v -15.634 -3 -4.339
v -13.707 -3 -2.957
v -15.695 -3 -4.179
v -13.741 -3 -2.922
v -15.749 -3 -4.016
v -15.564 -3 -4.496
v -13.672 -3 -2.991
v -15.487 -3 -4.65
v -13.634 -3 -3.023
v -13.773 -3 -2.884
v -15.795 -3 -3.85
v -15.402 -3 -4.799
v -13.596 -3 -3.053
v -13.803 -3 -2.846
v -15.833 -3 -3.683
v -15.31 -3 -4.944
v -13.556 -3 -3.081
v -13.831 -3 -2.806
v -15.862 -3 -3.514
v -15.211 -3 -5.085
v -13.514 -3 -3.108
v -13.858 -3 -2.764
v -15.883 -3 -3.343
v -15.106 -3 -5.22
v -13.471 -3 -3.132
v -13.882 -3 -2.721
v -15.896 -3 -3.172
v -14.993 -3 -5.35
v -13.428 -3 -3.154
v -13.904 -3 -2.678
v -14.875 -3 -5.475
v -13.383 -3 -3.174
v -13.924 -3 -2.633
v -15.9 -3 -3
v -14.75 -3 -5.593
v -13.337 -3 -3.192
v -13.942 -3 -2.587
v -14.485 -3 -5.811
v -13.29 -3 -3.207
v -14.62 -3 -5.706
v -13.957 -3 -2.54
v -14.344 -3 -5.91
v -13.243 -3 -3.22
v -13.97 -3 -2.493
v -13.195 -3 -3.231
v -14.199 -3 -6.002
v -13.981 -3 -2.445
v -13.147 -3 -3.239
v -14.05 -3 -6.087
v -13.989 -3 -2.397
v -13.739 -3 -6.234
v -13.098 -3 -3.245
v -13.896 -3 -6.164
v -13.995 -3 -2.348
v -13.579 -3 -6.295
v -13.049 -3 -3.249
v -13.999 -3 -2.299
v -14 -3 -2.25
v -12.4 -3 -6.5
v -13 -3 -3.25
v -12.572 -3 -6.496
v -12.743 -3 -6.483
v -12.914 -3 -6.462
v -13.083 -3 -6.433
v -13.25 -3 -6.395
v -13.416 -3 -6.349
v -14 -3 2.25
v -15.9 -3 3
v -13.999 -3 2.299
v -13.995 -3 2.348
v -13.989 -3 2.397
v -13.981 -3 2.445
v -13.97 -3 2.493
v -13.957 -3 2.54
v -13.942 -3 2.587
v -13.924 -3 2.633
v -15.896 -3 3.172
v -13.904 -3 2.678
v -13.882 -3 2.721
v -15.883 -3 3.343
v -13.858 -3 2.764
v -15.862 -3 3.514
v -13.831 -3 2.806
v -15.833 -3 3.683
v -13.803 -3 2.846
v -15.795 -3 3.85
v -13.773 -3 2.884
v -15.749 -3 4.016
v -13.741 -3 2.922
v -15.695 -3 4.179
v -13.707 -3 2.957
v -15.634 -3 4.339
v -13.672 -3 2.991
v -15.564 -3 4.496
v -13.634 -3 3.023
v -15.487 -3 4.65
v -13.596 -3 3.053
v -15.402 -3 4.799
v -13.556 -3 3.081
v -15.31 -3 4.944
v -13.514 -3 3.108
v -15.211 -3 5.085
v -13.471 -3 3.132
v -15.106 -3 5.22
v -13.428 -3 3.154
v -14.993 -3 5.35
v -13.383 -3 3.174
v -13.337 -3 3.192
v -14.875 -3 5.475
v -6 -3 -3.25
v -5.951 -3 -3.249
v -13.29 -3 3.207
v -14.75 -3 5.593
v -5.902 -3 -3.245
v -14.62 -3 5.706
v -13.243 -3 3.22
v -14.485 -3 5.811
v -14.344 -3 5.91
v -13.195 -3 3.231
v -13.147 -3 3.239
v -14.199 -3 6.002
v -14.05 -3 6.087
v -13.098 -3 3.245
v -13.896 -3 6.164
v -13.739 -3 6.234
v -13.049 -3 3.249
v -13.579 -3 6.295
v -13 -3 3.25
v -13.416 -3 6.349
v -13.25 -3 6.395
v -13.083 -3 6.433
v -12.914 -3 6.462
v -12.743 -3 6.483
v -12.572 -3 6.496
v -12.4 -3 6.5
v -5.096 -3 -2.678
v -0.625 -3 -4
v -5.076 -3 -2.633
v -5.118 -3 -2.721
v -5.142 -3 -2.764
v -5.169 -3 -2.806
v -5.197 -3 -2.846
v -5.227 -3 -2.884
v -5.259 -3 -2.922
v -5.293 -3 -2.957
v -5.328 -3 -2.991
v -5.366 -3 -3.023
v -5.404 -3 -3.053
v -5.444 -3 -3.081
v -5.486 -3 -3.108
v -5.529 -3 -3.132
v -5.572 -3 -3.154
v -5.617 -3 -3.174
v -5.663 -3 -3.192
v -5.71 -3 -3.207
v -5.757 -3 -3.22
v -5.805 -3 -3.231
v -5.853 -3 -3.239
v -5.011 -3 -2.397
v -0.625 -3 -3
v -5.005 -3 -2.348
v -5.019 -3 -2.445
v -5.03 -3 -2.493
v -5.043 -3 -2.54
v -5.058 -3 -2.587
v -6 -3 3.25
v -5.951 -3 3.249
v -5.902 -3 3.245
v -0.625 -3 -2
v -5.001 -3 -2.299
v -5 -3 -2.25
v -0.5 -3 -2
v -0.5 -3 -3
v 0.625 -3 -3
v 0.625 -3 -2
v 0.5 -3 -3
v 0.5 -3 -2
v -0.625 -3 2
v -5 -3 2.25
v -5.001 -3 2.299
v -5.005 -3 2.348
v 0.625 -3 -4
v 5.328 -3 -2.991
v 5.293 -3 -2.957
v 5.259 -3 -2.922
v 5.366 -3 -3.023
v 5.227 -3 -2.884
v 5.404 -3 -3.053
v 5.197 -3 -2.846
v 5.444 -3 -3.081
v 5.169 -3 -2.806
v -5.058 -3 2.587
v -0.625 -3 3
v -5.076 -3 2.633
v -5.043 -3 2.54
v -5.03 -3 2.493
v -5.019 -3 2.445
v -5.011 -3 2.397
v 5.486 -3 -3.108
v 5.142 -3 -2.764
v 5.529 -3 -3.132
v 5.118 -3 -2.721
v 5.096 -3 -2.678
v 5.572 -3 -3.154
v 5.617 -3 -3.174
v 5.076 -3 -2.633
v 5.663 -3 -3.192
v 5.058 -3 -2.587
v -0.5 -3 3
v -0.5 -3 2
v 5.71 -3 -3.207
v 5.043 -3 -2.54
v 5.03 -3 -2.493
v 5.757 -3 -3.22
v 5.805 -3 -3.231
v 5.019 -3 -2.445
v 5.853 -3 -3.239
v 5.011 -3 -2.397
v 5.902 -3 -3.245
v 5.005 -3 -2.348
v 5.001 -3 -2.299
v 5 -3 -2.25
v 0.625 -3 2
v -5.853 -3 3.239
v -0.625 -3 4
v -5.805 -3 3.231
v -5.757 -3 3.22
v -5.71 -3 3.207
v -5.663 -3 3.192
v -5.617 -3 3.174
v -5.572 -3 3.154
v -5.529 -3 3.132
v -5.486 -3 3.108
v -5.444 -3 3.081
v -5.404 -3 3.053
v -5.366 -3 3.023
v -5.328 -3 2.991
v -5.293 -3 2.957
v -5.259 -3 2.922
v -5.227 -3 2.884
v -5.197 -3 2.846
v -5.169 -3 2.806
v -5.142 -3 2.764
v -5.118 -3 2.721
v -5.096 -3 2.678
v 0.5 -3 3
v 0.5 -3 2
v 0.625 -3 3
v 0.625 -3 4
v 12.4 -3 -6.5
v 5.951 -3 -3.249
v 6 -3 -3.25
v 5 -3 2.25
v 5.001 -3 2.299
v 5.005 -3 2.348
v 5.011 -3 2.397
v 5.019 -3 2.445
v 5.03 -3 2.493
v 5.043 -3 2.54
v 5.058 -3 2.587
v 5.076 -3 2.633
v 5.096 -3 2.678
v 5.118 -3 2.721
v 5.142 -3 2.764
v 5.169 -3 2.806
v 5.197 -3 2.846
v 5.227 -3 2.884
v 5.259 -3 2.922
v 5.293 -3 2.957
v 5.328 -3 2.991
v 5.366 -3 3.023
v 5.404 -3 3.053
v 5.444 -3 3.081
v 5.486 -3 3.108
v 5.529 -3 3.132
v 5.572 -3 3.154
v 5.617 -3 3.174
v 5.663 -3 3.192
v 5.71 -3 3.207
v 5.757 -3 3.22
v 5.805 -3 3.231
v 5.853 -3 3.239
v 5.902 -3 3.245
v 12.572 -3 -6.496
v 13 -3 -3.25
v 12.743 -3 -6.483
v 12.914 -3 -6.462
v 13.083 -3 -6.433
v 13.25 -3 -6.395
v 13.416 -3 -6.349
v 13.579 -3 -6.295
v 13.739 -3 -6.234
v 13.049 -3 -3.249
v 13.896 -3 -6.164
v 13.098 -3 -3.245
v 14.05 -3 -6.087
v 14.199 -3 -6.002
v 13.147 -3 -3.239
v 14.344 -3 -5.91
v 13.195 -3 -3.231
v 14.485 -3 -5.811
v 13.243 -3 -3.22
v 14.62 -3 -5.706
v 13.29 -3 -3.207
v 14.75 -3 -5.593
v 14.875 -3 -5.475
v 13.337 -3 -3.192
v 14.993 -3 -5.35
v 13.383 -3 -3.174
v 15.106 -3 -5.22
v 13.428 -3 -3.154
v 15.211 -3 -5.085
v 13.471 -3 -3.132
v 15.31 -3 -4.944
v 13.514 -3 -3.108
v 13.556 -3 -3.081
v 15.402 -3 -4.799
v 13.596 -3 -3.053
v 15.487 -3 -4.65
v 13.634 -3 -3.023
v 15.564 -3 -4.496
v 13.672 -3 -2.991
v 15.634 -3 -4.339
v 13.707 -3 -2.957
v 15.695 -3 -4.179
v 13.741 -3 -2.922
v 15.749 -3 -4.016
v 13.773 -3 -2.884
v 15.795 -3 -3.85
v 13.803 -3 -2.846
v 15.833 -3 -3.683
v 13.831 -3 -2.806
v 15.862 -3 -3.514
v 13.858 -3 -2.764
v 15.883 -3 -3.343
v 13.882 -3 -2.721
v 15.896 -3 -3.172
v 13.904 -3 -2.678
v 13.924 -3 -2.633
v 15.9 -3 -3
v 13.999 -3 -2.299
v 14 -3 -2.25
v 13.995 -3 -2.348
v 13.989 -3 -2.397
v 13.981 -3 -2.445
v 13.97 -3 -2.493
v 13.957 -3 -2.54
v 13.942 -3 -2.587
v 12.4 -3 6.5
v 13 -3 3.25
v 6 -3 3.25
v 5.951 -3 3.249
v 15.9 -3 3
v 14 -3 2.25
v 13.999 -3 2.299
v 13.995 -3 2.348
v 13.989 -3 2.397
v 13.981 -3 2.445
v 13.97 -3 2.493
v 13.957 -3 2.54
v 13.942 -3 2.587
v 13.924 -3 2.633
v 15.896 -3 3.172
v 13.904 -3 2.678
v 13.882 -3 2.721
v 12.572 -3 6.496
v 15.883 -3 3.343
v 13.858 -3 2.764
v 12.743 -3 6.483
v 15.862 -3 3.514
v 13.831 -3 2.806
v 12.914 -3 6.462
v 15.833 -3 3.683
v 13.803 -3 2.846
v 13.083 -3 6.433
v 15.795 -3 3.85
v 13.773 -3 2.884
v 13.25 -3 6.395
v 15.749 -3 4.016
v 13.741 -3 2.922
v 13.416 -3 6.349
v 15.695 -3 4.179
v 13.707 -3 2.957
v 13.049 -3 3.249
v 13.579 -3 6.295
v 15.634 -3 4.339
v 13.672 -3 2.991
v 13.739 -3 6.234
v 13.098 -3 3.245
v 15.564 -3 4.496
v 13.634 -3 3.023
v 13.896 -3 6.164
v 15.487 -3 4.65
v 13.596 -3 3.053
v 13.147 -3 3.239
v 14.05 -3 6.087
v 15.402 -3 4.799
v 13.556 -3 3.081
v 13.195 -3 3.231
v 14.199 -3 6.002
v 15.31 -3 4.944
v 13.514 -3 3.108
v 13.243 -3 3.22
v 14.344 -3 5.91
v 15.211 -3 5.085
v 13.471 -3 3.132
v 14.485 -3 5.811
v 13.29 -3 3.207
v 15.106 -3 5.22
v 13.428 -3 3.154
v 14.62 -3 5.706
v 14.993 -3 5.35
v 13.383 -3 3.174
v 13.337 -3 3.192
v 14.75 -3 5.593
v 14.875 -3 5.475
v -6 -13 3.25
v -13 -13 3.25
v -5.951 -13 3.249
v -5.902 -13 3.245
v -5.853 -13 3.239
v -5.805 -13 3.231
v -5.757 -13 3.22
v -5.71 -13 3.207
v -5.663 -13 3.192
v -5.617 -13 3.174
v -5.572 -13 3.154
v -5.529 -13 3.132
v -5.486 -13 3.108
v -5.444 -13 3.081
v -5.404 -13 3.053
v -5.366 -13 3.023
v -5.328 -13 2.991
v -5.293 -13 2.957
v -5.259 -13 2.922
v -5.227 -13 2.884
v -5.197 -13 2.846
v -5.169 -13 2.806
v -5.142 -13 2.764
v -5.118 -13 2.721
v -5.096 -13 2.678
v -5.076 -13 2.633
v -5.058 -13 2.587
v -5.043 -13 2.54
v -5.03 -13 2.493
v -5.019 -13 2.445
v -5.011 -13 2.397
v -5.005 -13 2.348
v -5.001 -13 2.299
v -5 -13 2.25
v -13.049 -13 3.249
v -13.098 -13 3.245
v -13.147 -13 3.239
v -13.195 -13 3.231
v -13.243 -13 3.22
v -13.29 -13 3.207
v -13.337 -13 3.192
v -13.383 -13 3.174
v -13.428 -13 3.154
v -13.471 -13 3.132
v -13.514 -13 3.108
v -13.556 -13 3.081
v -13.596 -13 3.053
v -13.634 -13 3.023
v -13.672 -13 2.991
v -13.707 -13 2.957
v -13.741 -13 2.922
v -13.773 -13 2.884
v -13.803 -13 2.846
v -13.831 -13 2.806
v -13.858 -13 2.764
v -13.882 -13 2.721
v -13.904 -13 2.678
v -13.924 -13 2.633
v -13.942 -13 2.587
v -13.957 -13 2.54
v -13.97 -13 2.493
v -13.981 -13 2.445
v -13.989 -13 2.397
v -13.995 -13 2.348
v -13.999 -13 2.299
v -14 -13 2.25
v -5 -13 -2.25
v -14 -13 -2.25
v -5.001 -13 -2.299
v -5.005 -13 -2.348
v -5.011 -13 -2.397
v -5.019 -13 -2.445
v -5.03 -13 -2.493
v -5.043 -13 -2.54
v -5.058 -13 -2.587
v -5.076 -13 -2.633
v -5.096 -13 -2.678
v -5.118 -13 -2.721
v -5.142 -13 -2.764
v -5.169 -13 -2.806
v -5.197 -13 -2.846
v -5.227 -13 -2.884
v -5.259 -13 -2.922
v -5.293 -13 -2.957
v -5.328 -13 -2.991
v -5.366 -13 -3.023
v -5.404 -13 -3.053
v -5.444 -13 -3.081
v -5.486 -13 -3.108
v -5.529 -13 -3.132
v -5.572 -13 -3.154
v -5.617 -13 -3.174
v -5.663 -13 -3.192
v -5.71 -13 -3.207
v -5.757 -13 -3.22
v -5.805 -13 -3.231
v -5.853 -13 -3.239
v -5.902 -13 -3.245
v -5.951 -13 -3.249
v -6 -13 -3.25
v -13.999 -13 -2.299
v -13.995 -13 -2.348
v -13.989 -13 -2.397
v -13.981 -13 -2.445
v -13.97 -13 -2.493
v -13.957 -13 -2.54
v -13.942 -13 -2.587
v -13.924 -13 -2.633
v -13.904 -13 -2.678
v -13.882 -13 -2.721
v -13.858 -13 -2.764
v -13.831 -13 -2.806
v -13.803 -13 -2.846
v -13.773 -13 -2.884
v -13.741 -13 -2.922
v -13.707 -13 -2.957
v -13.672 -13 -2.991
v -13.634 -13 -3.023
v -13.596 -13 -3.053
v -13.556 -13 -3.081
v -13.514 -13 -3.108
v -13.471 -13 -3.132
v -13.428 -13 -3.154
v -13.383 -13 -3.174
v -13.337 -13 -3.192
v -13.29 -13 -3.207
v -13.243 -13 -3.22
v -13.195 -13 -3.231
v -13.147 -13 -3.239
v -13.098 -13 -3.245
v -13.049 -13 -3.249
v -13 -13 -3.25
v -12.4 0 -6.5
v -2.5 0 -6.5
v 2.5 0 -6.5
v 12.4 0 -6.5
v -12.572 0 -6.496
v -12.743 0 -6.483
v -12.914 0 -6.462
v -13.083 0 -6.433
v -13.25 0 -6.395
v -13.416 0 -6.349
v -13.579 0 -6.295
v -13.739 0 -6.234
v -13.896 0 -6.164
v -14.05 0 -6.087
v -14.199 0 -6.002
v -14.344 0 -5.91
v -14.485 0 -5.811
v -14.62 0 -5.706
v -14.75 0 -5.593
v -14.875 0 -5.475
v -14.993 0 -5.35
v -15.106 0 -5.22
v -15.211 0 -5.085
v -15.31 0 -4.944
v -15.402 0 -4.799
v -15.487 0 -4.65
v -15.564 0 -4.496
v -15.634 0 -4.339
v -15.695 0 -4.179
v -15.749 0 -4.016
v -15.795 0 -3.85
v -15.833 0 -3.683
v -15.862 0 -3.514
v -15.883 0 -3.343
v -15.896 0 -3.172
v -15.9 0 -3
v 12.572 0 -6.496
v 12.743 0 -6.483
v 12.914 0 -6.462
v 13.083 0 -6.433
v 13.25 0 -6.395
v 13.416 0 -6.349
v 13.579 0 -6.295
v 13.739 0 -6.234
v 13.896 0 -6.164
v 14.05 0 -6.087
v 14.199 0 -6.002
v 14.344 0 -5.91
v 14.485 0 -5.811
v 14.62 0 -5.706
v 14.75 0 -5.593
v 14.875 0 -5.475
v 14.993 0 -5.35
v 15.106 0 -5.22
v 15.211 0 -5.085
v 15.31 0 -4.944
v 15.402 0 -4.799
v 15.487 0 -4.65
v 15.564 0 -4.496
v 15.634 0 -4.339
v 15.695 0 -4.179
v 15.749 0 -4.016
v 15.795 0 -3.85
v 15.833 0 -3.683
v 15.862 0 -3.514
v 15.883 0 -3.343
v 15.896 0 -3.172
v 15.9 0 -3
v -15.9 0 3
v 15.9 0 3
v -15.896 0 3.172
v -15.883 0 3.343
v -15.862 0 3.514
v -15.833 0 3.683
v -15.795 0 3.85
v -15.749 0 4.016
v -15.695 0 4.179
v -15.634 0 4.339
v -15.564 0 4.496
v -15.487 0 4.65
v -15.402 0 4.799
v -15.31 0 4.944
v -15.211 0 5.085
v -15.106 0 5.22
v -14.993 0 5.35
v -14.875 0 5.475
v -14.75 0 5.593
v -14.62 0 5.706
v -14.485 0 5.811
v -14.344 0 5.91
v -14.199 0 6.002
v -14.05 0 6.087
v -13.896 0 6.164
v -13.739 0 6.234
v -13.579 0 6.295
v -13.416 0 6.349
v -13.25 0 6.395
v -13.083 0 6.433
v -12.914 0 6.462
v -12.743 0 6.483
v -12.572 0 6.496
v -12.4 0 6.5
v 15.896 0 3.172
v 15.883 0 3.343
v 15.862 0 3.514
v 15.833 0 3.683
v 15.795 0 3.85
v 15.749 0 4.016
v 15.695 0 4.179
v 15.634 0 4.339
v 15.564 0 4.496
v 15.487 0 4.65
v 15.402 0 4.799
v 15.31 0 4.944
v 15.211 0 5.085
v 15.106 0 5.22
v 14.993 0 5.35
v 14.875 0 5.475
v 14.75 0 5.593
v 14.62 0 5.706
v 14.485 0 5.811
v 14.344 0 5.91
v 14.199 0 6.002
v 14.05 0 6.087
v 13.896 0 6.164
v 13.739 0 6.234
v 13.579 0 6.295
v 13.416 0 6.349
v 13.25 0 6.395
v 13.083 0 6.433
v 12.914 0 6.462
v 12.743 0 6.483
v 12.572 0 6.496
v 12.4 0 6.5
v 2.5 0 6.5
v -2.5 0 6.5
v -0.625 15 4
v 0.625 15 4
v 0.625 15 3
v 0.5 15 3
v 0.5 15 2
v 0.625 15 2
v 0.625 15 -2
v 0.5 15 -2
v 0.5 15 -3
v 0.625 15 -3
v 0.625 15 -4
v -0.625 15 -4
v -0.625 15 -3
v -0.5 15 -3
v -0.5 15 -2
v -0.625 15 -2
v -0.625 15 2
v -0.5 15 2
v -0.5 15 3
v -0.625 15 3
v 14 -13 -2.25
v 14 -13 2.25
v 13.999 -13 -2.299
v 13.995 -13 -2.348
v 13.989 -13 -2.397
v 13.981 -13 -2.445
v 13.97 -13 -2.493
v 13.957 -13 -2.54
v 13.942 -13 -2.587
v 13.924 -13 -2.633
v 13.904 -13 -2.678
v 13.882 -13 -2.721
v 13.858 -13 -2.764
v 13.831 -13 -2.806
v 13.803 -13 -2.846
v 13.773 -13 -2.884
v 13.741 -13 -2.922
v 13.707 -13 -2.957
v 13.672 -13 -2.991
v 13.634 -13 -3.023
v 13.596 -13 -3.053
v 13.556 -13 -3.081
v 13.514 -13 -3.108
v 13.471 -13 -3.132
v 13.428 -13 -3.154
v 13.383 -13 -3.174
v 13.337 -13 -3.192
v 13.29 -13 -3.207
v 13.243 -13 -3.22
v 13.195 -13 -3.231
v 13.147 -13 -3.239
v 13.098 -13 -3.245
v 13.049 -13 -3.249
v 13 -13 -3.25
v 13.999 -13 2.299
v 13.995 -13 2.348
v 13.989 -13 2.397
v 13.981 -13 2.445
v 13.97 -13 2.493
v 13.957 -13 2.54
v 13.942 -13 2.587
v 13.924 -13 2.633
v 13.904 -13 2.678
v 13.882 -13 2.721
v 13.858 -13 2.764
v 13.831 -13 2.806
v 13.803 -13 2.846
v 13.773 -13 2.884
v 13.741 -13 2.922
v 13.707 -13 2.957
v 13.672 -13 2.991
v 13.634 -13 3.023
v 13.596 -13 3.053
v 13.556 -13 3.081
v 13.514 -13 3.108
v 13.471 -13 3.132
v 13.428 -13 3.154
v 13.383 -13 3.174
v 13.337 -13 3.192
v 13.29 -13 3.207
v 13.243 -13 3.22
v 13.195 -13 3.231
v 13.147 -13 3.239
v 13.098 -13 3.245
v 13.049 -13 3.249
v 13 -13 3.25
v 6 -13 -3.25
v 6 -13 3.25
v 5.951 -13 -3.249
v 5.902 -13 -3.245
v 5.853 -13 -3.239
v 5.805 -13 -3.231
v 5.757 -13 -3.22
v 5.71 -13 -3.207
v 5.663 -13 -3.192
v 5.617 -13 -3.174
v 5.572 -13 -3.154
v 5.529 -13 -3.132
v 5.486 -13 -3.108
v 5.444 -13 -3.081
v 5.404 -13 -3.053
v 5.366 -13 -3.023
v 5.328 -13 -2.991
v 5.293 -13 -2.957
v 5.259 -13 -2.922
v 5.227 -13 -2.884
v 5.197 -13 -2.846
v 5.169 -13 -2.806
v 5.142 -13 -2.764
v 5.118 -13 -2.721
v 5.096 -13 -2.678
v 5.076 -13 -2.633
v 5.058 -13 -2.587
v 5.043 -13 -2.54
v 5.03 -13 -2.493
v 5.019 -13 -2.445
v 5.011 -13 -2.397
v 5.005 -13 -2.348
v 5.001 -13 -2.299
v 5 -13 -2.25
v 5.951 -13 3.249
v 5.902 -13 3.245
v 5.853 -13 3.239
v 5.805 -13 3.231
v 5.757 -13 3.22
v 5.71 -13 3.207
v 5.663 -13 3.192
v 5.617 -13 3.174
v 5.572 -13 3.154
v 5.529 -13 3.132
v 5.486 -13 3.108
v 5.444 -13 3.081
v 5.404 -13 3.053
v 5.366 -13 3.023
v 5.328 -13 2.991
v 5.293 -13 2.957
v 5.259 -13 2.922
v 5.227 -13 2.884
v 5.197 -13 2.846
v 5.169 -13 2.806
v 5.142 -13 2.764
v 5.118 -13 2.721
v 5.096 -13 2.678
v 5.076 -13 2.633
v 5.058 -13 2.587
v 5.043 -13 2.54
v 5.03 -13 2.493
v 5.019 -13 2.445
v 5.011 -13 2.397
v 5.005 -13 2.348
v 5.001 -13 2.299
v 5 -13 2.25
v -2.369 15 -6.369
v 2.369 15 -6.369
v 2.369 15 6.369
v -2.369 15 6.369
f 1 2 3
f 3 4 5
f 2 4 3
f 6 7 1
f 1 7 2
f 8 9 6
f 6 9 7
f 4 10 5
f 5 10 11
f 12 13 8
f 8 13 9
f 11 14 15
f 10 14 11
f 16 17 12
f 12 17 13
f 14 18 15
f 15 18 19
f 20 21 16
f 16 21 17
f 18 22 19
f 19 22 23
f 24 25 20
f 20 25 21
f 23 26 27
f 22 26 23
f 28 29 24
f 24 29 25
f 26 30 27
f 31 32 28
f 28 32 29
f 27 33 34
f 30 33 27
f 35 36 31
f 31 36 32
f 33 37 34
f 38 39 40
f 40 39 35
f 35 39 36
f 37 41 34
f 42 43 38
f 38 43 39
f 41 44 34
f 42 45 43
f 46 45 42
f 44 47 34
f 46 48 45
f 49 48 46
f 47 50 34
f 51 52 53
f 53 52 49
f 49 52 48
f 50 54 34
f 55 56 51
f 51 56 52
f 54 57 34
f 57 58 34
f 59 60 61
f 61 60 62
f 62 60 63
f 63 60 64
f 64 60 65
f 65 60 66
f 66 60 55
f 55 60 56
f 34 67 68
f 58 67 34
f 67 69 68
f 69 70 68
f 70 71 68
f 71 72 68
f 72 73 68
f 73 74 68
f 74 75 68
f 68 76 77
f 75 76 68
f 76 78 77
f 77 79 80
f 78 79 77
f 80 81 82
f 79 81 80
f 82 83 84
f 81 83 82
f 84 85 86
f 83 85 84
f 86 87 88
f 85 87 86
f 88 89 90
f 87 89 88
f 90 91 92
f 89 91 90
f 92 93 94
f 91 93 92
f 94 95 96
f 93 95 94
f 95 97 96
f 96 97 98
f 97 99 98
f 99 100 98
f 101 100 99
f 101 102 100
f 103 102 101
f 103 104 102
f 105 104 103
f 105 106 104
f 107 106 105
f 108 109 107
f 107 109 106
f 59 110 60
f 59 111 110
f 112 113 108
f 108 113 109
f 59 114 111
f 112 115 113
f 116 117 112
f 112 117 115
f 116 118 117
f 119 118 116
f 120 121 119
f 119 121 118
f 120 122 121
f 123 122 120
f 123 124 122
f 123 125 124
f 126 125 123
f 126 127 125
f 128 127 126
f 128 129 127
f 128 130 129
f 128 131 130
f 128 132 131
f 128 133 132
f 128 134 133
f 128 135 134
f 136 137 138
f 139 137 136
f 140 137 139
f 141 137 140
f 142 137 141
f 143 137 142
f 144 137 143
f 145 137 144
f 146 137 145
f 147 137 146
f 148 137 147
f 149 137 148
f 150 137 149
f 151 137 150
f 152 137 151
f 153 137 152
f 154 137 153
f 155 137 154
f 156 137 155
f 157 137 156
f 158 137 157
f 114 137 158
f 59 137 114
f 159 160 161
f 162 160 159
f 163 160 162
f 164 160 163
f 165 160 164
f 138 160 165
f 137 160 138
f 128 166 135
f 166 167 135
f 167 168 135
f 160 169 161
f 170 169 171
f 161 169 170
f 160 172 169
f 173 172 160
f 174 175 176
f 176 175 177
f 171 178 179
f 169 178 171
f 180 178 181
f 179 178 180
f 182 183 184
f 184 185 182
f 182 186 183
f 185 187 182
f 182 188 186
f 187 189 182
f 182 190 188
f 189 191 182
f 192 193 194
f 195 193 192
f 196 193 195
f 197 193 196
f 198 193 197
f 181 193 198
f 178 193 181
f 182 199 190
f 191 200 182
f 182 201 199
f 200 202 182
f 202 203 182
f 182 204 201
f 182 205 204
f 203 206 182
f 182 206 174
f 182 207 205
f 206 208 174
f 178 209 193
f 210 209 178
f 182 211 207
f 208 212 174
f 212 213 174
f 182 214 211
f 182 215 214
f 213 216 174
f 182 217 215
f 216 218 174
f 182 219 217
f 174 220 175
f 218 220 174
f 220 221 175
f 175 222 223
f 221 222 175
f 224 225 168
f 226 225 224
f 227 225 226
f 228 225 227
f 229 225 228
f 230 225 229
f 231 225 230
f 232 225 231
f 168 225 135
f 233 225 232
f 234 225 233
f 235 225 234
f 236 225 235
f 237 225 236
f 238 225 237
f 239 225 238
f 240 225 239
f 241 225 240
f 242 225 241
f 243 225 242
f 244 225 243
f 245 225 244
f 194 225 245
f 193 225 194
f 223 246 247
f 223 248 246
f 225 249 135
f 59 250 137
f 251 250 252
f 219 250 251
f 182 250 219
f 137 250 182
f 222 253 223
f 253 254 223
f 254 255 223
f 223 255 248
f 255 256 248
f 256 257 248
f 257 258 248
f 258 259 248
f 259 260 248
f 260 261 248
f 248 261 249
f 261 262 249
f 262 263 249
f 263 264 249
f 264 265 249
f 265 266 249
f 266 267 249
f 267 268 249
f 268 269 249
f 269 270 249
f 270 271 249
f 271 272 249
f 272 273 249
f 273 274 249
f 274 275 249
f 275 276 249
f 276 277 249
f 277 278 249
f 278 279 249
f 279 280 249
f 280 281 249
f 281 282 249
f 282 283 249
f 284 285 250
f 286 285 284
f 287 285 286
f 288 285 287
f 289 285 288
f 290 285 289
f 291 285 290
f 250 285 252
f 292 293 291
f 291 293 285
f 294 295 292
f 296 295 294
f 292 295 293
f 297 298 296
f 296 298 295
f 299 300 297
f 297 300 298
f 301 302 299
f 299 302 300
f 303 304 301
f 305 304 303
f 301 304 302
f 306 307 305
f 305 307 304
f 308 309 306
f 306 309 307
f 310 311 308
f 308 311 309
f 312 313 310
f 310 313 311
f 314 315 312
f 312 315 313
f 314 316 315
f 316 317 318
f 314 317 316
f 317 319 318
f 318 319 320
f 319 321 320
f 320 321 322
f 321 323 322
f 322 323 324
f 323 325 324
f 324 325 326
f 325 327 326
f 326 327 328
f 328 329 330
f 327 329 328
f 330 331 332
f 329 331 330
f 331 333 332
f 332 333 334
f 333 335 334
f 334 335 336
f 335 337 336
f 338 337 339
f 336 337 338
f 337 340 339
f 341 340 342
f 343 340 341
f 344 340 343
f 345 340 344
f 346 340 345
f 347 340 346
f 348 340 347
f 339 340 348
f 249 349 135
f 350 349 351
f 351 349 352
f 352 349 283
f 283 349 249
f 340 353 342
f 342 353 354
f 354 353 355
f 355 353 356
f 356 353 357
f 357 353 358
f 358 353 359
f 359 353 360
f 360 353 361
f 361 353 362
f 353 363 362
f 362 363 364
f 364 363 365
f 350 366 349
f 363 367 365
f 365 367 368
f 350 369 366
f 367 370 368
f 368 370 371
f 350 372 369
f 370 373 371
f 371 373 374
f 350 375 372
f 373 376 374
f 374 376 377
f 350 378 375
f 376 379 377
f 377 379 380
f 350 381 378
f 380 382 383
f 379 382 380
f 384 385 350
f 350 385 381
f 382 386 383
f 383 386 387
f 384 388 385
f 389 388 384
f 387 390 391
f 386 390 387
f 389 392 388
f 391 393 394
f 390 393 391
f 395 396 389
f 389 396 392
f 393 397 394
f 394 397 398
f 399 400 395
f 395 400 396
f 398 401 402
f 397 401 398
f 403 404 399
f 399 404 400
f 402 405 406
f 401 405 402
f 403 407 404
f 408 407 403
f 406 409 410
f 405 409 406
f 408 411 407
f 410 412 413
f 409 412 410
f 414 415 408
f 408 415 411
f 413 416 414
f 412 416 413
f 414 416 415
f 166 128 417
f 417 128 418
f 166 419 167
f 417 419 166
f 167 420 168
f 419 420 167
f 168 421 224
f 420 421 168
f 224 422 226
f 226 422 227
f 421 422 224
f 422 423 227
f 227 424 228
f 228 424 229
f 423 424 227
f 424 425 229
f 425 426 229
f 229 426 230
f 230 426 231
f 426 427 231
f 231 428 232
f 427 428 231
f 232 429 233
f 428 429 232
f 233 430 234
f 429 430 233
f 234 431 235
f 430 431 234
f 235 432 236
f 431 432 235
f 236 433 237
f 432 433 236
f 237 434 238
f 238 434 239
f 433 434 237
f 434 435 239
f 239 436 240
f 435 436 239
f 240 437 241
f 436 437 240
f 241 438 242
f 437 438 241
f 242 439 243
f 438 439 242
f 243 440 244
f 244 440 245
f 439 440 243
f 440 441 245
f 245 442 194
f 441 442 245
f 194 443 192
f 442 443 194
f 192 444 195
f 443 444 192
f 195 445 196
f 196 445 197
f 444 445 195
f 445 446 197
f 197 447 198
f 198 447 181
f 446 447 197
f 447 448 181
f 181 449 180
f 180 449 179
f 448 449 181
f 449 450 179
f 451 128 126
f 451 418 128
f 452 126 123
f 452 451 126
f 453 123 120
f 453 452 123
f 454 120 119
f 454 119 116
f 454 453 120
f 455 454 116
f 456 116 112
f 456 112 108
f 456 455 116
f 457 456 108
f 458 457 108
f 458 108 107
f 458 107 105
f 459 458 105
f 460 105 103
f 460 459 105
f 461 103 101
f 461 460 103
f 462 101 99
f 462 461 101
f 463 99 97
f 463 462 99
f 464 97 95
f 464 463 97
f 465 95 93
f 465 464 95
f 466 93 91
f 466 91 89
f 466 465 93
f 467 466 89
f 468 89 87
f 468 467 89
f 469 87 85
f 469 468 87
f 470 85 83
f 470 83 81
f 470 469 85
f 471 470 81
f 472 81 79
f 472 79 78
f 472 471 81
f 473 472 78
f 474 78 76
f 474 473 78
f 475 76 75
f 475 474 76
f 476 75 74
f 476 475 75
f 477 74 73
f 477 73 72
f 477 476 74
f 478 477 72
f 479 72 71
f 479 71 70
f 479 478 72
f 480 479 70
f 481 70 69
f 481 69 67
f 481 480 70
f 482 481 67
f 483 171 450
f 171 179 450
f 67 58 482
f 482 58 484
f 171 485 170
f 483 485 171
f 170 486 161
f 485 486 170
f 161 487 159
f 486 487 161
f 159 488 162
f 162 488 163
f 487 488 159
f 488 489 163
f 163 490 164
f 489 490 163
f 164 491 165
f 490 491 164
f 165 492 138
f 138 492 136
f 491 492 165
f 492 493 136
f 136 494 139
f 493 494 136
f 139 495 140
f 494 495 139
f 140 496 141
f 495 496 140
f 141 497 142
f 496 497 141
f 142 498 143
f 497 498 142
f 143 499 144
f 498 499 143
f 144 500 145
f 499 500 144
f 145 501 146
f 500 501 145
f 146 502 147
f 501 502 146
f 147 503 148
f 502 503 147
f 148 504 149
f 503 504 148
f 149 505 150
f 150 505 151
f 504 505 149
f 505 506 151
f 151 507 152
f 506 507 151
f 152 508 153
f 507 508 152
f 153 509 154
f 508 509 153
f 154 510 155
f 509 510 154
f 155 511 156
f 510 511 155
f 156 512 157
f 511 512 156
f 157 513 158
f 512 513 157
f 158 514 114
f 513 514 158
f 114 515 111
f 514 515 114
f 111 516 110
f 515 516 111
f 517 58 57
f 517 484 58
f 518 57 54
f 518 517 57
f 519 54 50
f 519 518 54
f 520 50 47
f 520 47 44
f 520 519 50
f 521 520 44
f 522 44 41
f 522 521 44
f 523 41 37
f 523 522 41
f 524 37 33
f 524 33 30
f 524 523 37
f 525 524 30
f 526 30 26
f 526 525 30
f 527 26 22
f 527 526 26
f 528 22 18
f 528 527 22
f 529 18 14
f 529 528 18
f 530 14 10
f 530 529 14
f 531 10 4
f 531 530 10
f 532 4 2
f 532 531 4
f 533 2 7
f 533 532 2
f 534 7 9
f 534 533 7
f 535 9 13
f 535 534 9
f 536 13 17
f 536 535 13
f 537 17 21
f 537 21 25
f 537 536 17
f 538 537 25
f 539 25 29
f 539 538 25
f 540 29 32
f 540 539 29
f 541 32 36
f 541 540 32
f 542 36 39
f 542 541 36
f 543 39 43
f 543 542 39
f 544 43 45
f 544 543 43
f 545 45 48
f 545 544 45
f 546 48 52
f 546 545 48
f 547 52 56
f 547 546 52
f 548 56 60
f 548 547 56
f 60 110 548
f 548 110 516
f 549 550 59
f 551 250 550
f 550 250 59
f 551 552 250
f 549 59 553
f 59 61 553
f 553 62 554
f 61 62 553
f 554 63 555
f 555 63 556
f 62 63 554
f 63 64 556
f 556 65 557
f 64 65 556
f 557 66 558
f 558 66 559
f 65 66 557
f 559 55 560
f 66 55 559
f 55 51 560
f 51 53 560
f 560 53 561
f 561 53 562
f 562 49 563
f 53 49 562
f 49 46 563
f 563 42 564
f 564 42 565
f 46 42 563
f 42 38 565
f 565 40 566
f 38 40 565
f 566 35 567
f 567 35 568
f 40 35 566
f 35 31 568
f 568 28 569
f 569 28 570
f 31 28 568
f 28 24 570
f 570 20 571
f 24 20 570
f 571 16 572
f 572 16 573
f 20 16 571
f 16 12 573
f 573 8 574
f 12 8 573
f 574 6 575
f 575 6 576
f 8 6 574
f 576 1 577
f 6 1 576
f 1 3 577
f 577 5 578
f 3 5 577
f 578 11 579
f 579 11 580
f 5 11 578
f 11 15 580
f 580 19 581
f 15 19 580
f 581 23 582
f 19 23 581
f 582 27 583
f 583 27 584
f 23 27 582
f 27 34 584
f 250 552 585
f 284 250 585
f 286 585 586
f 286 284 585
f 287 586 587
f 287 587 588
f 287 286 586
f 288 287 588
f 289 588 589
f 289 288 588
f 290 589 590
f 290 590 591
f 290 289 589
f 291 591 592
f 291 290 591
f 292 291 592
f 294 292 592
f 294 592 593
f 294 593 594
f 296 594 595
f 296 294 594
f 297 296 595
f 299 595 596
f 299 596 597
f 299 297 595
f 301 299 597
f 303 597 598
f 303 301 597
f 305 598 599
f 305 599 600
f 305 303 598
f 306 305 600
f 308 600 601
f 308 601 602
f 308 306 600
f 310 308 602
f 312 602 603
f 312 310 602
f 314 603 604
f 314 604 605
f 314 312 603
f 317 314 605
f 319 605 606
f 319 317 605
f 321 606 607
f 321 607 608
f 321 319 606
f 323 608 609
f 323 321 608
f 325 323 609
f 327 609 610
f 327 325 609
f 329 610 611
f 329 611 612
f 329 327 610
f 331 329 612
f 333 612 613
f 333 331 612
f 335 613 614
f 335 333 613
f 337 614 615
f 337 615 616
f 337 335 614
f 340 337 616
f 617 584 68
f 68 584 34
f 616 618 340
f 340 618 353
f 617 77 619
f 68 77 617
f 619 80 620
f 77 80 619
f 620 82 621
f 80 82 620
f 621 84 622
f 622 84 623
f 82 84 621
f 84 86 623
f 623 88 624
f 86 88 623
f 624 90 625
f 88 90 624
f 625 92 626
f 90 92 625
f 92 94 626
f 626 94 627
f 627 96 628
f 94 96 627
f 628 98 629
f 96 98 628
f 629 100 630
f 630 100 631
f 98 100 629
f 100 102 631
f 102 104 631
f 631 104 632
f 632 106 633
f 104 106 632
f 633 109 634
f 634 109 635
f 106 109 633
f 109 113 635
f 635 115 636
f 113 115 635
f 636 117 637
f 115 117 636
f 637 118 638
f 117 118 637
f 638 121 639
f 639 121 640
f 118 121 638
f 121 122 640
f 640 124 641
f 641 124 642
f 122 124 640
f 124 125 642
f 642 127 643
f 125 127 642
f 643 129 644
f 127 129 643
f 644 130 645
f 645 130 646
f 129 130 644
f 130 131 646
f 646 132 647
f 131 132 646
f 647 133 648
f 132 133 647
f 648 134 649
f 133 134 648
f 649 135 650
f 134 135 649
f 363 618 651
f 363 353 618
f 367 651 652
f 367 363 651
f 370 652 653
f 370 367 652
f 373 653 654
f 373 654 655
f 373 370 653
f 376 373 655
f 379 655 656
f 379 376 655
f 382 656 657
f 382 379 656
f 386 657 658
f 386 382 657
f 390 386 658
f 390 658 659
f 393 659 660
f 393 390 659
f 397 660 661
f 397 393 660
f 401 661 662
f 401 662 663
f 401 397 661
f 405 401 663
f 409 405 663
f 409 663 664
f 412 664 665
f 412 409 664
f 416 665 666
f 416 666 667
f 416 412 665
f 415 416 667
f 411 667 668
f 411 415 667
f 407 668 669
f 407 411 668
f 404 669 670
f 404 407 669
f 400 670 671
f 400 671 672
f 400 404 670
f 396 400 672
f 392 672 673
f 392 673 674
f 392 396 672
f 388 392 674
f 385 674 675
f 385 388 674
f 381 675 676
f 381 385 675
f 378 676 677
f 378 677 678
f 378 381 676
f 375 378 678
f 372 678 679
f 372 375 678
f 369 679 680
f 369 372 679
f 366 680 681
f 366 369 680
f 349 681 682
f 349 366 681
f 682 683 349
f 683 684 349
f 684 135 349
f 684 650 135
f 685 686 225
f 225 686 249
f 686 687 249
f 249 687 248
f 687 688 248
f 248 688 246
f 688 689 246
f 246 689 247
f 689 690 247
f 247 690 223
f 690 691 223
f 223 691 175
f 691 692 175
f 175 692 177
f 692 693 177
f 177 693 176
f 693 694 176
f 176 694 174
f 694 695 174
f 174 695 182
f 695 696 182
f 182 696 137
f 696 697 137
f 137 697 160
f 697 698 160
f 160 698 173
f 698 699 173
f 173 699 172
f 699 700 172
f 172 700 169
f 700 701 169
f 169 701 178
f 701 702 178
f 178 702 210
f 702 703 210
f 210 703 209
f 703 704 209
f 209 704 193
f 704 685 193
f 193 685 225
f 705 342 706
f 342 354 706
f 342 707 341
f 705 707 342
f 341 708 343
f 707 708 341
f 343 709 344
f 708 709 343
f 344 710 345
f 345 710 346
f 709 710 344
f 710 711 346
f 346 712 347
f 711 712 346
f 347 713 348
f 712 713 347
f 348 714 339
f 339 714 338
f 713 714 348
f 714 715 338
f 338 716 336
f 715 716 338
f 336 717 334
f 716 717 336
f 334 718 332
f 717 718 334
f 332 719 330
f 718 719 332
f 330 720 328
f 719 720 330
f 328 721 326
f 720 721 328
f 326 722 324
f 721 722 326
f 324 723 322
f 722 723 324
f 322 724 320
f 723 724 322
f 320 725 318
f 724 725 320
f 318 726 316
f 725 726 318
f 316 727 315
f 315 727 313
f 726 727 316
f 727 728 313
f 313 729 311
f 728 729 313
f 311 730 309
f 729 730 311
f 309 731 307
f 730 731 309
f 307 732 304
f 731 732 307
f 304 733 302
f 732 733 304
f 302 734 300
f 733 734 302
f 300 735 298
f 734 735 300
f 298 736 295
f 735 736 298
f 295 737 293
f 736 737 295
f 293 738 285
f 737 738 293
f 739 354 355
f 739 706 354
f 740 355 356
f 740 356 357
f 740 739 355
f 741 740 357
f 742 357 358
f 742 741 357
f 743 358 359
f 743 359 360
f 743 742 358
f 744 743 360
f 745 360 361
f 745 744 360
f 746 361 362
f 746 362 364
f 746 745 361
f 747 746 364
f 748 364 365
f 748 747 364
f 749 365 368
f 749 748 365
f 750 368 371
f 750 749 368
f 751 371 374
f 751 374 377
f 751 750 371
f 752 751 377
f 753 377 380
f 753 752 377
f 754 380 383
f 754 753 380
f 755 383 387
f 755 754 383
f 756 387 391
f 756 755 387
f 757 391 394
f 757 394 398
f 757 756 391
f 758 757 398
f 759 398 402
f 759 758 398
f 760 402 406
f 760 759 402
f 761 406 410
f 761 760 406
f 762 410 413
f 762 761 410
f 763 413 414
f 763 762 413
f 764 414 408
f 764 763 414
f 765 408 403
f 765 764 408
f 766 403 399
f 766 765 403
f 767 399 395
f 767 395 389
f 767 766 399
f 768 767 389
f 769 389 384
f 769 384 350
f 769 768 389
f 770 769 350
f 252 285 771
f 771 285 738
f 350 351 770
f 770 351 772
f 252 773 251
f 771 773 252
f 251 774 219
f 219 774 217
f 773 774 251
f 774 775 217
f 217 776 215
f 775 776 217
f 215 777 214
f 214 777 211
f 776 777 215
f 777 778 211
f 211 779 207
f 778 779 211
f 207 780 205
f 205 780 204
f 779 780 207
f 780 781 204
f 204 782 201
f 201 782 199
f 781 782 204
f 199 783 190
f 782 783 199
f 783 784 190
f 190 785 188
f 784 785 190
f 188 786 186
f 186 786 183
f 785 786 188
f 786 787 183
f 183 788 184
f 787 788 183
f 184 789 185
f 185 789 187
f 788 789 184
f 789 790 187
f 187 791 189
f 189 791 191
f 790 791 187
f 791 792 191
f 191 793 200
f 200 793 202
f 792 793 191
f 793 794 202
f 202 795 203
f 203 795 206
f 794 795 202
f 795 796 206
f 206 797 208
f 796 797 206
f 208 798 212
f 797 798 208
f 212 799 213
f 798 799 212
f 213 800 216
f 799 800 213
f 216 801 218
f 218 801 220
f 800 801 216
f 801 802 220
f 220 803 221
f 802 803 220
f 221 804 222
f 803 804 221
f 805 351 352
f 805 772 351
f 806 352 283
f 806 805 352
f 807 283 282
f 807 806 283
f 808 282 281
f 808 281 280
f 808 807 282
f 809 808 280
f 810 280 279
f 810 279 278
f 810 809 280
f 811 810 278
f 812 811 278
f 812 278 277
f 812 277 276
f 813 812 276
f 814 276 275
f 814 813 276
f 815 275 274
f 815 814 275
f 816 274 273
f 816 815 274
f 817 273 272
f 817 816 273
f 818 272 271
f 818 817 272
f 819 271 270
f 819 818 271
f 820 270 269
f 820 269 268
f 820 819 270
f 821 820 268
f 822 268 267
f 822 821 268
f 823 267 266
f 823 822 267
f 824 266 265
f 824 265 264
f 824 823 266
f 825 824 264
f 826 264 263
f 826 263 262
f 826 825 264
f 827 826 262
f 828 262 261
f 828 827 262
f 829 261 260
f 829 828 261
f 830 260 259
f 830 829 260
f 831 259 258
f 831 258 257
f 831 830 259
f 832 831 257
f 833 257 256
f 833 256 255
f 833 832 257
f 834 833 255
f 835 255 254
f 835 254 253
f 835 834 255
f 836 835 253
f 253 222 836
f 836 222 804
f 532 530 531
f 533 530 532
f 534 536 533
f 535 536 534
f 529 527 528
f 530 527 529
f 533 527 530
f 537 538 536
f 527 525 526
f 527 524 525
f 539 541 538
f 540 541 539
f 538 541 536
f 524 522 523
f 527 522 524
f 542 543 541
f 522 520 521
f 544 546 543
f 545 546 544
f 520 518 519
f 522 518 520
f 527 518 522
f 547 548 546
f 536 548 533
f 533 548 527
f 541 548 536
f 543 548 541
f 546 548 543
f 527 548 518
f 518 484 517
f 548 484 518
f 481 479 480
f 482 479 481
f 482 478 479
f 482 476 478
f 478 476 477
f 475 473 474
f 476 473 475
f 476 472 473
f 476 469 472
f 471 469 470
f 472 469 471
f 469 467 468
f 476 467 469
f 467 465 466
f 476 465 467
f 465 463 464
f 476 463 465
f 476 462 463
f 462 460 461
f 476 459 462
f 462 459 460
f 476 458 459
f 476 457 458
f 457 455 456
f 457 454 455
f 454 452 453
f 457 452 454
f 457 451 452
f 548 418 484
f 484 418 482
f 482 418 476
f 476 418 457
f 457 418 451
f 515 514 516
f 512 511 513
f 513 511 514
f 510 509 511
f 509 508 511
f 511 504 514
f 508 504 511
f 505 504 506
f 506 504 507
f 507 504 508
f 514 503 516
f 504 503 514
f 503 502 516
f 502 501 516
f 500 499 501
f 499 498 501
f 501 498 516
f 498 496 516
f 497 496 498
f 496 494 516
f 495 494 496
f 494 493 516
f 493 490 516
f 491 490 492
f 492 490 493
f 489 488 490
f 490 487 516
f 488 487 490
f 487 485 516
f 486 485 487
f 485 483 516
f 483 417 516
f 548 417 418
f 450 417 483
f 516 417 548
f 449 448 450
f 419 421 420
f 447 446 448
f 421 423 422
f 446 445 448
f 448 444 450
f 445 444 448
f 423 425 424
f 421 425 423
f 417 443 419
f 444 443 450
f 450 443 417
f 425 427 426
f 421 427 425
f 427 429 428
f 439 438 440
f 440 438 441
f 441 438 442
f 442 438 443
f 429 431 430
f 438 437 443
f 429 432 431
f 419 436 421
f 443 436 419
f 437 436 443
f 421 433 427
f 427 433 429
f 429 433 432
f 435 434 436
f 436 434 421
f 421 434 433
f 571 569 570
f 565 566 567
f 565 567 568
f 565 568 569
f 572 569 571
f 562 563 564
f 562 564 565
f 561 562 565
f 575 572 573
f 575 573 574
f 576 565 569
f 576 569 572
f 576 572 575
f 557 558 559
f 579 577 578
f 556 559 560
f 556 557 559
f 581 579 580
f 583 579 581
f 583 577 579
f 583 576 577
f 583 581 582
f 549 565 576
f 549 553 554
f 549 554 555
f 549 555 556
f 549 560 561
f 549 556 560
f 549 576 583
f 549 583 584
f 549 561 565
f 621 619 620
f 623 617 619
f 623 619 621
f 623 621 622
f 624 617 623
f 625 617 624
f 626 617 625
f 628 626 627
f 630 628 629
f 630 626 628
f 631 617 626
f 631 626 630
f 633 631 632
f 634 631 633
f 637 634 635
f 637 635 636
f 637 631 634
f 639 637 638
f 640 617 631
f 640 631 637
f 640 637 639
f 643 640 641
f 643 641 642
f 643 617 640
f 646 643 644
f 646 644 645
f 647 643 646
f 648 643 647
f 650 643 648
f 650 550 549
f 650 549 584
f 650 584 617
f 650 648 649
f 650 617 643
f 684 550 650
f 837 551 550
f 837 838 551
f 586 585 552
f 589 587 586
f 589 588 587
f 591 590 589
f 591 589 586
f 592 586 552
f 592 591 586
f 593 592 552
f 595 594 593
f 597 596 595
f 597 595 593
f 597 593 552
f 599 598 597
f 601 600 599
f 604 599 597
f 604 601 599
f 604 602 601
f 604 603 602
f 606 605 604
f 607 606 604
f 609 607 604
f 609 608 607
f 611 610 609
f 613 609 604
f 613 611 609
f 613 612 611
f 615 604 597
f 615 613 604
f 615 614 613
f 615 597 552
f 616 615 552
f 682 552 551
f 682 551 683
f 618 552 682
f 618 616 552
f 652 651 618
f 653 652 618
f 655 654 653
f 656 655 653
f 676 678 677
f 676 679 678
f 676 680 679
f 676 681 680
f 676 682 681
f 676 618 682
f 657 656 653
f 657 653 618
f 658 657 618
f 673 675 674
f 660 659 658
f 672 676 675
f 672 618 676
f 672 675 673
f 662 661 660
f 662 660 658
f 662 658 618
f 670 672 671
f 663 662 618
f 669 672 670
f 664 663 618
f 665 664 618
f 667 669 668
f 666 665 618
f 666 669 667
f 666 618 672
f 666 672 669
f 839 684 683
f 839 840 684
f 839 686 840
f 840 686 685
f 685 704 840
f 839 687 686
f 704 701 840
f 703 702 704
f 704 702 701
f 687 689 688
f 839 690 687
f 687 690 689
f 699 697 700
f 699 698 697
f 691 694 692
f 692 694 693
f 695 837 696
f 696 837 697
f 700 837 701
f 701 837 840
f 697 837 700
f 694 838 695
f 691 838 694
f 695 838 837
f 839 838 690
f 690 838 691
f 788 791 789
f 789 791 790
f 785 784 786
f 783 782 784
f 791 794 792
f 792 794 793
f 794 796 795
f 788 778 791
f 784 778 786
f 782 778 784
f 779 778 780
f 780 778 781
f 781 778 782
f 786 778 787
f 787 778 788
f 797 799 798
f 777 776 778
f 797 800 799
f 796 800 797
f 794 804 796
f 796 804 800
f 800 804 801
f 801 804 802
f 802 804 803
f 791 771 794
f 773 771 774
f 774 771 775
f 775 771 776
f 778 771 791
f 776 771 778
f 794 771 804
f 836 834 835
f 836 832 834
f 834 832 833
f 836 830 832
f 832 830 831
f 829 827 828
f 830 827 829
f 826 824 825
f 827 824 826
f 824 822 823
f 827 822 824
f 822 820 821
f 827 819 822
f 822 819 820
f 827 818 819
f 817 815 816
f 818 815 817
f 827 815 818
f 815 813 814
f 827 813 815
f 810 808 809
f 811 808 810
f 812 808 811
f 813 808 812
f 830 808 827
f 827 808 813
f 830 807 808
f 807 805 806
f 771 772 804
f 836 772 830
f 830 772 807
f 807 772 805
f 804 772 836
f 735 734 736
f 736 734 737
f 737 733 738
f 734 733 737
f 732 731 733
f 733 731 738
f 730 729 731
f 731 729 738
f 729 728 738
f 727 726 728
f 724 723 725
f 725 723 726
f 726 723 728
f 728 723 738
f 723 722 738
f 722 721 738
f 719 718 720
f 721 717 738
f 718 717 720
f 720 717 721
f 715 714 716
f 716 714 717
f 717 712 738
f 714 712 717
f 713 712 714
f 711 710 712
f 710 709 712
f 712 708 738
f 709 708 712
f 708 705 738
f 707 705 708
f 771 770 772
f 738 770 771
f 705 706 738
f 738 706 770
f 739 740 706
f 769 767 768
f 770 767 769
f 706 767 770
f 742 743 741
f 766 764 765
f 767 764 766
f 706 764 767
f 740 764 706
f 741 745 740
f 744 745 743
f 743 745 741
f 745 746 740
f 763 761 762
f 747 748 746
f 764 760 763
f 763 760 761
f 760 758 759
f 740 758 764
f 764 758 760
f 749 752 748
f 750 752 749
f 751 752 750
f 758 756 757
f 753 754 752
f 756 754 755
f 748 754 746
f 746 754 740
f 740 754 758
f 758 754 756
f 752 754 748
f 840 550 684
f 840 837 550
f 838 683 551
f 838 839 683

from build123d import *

# Parameters (mm, degrees)
SKETCH_W     = 31.8
SKETCH_H     = 13
PAD_DEPTH    = 3
SKETCH001_W  = 9
SKETCH001_H  = 6.5
PAD001_DEPTH = 10
SKETCH002_W  = 5
SKETCH002_H  = 13
PAD002_DEPTH = 15
PAD002_TAPER = 0.5
POCKET_DEPTH = 28.001
FILLET_R     = 3.5
FILLET001_R  = 1


with BuildPart() as part:
    # Sketch → Pad (new body)
    with BuildSketch(Plane.XZ):
        Rectangle(SKETCH_W, SKETCH_H)
    extrude(amount=PAD_DEPTH)

    # Sketch001 (on Face6 of Pad) → Pad001 (join)
    with BuildSketch(Plane.XZ.offset(3)):
        with Locations((-9.5, 0)):
            Rectangle(SKETCH001_W, SKETCH001_H)
        with Locations((9.5, 0)):
            Rectangle(SKETCH001_W, SKETCH001_H)
    extrude(amount=PAD001_DEPTH)

    # Sketch002 (on Face4 of Pad001) → Pad002 (join)
    with BuildSketch(Plane(origin=(0, 0, 0), x_dir=(1, 0, 0), z_dir=(0, 1, 0))):
        Rectangle(SKETCH002_W, SKETCH002_H)
    extrude(amount=PAD002_DEPTH, taper=PAD002_TAPER)

    # Sketch003 (on Face10 of Pad002) → Pocket (cut, through all)
    with BuildSketch(Plane(origin=(0, 15, 0), x_dir=(1, 0, 0), z_dir=(0, 1, 0))):
        Polygon((-0.625, -4), (0.625, -4), (0.625, -3), (0.5, -3), (0.5, -2), (0.625, -2), (0.625, 2), (0.5, 2), (0.5, 3), (0.625, 3), (0.625, 4), (-0.625, 4), (-0.625, 3), (-0.499997, 3), (-0.5, 2), (-0.625, 2), (-0.625, -2), (-0.5, -2), (-0.5, -3), (-0.625, -3), align=None)
    extrude(amount=-POCKET_DEPTH, mode=Mode.SUBTRACT)

    # Fillet
    fillet_edges = [part.edges().sort_by_distance(p)[0] for p in [
        (15.9, -1.5, -6.5),
        (-15.9, -1.5, -6.5),
        (-15.9, -1.5, 6.5),
        (15.9, -1.5, 6.5),
    ]]
    fillet(fillet_edges, radius=FILLET_R)

    # Fillet001
    fillet001_edges = [part.edges().sort_by_distance(p)[0] for p in [
        (-14, -8, -3.25),
        (-14, -8, 3.25),
        (-5, -8, -3.25),
        (5, -8, -3.25),
        (14, -8, -3.25),
        (-5, -8, 3.25),
        (5, -8, 3.25),
        (14, -8, 3.25),
    ]]
    fillet(fillet001_edges, radius=FILLET001_R)


solid = part.part
